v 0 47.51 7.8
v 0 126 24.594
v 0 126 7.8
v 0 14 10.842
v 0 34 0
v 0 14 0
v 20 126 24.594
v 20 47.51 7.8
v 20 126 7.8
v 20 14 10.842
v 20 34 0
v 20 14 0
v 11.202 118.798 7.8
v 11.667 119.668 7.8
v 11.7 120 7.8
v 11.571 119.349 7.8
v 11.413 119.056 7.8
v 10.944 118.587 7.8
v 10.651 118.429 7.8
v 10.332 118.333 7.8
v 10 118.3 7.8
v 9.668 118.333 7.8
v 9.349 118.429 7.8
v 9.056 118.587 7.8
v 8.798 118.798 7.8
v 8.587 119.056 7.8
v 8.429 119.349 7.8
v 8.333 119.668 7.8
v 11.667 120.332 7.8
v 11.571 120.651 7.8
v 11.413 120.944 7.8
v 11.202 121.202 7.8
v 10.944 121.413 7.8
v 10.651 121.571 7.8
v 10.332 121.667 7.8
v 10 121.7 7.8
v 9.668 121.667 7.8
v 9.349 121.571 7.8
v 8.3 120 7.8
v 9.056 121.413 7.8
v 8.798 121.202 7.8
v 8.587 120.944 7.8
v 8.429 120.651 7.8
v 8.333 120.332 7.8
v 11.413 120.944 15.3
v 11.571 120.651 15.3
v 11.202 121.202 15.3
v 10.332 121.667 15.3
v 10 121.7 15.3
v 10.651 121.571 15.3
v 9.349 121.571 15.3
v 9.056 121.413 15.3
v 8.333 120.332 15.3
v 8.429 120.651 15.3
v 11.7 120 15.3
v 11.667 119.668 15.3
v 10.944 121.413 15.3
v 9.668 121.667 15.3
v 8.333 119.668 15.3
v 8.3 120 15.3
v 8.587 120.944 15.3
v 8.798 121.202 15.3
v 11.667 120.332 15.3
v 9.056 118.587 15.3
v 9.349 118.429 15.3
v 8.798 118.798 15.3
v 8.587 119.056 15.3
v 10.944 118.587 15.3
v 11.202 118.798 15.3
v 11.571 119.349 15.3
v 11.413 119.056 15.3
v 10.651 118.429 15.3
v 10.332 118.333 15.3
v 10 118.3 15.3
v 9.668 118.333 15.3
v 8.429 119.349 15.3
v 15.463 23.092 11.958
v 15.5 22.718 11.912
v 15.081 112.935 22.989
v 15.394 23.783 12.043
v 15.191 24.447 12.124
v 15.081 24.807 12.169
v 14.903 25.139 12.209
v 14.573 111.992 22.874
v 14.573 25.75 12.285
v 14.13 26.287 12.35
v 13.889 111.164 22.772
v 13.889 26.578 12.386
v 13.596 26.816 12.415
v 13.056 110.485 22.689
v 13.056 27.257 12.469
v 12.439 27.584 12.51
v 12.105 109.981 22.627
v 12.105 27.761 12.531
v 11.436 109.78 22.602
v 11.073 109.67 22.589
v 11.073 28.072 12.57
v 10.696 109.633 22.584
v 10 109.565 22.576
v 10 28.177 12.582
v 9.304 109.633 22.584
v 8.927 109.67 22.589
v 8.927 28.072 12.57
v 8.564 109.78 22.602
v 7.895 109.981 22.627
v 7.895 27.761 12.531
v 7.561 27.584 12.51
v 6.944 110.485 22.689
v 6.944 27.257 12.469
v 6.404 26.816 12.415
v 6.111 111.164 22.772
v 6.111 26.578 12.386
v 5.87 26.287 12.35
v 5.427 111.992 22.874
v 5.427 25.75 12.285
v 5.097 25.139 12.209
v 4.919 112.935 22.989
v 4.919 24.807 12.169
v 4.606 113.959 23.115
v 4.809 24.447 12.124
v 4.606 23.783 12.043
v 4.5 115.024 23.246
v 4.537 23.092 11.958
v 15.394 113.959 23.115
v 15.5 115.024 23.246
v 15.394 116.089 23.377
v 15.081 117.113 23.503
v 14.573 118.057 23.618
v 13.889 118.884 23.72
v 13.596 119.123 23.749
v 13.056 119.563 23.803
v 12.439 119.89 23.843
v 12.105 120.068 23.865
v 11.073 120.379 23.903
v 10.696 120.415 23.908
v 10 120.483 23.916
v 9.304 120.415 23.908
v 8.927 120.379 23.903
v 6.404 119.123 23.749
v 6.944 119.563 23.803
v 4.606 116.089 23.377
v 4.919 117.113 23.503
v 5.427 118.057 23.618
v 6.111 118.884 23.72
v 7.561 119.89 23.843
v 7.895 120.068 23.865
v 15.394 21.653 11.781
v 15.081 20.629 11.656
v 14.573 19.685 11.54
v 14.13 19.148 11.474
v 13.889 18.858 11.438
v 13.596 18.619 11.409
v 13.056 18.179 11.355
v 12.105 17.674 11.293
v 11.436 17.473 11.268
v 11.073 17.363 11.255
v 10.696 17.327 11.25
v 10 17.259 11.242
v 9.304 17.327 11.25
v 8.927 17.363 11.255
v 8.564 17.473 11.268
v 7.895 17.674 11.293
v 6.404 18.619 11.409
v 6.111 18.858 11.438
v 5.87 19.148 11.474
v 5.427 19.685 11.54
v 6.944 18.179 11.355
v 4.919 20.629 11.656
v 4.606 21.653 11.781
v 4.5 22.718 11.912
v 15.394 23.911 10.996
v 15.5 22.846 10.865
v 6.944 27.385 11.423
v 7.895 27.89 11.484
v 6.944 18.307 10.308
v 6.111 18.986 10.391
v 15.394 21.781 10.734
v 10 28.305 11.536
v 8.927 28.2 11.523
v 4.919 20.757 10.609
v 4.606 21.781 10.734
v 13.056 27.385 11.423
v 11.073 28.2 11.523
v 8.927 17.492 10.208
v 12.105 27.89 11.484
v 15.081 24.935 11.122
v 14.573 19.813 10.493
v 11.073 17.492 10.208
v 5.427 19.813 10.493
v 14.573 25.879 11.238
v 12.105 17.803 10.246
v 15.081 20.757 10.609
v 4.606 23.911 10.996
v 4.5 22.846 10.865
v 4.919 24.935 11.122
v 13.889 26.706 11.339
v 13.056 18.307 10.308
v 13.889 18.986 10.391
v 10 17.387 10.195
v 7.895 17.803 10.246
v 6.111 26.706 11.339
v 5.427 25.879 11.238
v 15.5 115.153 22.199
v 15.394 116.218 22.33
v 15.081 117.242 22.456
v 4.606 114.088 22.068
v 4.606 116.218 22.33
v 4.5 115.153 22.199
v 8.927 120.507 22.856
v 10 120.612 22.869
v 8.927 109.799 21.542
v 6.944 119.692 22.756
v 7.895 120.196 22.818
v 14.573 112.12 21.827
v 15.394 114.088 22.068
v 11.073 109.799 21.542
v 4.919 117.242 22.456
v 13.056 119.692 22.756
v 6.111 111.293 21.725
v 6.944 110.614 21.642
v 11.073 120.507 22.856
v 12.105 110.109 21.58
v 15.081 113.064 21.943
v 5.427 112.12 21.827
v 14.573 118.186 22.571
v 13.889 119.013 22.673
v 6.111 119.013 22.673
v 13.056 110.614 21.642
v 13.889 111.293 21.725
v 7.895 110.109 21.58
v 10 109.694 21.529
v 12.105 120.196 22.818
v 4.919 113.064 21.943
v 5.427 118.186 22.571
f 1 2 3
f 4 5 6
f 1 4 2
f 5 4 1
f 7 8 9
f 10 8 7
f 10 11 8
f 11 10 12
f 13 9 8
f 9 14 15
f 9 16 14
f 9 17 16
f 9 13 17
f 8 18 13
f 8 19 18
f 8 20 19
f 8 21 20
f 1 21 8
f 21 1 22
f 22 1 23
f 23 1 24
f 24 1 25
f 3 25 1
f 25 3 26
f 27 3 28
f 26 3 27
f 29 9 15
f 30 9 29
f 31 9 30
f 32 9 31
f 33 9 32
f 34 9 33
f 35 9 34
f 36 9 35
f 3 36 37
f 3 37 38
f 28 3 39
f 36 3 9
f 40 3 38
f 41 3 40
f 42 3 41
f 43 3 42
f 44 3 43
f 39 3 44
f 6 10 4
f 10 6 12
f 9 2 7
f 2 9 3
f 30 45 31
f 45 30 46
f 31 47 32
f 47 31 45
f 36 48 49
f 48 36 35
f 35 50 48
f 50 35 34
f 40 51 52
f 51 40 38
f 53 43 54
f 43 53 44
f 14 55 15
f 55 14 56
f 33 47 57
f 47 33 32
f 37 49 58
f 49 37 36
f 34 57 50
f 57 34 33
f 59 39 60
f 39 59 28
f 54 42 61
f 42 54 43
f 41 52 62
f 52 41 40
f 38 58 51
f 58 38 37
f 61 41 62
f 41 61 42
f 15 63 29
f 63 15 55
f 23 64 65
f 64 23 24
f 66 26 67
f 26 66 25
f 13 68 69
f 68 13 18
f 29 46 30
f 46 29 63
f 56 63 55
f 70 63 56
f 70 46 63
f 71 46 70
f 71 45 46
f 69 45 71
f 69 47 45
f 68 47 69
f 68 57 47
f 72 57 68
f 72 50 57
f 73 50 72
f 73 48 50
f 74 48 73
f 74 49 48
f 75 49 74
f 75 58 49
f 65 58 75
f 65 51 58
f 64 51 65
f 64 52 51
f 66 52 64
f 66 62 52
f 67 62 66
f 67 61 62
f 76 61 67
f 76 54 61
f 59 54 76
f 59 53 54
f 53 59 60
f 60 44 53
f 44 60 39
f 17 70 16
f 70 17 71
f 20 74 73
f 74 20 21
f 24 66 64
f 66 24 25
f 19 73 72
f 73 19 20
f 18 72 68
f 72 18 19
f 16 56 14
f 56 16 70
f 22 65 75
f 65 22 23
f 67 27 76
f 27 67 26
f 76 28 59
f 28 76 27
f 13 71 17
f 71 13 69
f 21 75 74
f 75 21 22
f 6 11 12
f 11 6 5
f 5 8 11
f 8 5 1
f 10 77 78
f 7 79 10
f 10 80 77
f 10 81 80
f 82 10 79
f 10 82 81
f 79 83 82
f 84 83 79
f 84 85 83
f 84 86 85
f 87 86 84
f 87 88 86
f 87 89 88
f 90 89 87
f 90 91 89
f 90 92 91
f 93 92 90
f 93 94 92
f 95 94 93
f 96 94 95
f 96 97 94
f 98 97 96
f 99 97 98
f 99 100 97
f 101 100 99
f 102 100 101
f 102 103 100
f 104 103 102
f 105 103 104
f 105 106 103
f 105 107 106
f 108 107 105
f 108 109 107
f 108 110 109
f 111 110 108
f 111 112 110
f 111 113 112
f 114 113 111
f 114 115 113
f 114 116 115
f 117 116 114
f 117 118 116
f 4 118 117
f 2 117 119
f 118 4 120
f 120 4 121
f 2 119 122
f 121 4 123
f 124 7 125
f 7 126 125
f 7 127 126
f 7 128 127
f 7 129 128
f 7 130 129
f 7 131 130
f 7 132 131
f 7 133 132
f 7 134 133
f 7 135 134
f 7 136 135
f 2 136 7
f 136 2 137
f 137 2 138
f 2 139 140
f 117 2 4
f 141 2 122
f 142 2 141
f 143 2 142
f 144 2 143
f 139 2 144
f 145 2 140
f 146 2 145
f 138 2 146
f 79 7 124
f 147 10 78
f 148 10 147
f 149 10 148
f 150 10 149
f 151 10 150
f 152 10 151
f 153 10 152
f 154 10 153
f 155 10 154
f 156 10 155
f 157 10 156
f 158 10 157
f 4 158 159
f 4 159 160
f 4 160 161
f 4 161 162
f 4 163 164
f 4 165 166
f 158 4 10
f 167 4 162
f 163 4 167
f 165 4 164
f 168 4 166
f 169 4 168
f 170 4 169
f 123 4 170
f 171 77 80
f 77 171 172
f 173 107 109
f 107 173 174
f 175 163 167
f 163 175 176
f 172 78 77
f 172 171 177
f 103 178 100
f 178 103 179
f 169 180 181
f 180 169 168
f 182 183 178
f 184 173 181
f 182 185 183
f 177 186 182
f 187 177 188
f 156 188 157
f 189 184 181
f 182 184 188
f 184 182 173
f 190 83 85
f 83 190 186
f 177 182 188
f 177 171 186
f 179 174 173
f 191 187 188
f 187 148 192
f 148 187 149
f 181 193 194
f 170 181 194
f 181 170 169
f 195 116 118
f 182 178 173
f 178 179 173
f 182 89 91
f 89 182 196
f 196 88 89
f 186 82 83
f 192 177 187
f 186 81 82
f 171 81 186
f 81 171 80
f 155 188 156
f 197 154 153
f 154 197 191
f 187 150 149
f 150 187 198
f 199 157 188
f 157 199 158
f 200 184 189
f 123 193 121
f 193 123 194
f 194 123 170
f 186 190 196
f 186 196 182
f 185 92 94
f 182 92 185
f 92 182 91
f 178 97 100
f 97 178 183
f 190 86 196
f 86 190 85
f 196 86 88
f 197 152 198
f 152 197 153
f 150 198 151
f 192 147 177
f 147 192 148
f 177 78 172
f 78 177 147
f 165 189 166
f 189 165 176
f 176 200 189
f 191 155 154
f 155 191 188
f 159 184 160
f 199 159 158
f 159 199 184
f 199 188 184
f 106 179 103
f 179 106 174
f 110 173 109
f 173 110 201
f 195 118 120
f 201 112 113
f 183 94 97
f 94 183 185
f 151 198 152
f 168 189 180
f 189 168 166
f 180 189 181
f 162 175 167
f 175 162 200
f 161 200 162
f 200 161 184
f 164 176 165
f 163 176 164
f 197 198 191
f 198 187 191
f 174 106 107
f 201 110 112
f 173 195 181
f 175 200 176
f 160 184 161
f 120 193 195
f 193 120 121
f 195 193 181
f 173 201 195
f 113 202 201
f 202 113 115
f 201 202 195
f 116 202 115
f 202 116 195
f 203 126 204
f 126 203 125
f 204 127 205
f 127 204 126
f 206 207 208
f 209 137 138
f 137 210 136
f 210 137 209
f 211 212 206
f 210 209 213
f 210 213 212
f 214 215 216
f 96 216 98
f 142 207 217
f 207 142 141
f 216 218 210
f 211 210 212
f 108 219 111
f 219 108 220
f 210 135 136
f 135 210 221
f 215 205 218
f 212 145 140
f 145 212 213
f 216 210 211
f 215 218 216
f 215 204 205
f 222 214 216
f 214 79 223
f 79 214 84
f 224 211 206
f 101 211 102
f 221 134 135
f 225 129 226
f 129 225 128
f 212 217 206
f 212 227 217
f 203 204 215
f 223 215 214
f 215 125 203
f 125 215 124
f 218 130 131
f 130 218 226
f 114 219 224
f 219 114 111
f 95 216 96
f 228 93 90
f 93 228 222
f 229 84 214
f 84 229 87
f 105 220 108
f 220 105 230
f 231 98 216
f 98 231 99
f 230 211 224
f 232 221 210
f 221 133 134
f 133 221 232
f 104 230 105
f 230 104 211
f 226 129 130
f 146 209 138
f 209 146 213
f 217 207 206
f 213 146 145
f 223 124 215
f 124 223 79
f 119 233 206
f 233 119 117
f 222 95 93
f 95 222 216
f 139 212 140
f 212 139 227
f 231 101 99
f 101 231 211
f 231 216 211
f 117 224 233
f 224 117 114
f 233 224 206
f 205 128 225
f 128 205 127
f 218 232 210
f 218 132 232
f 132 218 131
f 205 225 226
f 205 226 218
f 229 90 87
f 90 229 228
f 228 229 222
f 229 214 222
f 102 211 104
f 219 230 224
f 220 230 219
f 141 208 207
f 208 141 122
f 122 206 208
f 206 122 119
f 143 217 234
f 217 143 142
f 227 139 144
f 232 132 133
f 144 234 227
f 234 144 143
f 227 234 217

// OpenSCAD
// A simple "foot" for C64 keyboards.
// There were many versions of this keyboard.
// This design may not work on all of them.

$fn = 32;

difference() {
    block();

    translate([-1,-1,9])
    rotate([7,0,0])
    cube([22,150,30]);

    rotate([7,0,0])
    translate([10,24,8])
    cylinder(3, d=11);

    rotate([7,0,0])
    translate([10,117,8])
    cylinder(3, d=11);
}

module block() {
    difference() {
        translate([0,14,0])
        cube([20,35,8.8]);

        translate([-1,34,0])
        rotate([-60,0,0])
        cube([22,20,20]);
    }

    difference () {

        translate([0,14,7.8])
        cube([20,112,30]);

        translate([10,120,0])
        cylinder(7.8+7.5, d=3.4);

    };
}
